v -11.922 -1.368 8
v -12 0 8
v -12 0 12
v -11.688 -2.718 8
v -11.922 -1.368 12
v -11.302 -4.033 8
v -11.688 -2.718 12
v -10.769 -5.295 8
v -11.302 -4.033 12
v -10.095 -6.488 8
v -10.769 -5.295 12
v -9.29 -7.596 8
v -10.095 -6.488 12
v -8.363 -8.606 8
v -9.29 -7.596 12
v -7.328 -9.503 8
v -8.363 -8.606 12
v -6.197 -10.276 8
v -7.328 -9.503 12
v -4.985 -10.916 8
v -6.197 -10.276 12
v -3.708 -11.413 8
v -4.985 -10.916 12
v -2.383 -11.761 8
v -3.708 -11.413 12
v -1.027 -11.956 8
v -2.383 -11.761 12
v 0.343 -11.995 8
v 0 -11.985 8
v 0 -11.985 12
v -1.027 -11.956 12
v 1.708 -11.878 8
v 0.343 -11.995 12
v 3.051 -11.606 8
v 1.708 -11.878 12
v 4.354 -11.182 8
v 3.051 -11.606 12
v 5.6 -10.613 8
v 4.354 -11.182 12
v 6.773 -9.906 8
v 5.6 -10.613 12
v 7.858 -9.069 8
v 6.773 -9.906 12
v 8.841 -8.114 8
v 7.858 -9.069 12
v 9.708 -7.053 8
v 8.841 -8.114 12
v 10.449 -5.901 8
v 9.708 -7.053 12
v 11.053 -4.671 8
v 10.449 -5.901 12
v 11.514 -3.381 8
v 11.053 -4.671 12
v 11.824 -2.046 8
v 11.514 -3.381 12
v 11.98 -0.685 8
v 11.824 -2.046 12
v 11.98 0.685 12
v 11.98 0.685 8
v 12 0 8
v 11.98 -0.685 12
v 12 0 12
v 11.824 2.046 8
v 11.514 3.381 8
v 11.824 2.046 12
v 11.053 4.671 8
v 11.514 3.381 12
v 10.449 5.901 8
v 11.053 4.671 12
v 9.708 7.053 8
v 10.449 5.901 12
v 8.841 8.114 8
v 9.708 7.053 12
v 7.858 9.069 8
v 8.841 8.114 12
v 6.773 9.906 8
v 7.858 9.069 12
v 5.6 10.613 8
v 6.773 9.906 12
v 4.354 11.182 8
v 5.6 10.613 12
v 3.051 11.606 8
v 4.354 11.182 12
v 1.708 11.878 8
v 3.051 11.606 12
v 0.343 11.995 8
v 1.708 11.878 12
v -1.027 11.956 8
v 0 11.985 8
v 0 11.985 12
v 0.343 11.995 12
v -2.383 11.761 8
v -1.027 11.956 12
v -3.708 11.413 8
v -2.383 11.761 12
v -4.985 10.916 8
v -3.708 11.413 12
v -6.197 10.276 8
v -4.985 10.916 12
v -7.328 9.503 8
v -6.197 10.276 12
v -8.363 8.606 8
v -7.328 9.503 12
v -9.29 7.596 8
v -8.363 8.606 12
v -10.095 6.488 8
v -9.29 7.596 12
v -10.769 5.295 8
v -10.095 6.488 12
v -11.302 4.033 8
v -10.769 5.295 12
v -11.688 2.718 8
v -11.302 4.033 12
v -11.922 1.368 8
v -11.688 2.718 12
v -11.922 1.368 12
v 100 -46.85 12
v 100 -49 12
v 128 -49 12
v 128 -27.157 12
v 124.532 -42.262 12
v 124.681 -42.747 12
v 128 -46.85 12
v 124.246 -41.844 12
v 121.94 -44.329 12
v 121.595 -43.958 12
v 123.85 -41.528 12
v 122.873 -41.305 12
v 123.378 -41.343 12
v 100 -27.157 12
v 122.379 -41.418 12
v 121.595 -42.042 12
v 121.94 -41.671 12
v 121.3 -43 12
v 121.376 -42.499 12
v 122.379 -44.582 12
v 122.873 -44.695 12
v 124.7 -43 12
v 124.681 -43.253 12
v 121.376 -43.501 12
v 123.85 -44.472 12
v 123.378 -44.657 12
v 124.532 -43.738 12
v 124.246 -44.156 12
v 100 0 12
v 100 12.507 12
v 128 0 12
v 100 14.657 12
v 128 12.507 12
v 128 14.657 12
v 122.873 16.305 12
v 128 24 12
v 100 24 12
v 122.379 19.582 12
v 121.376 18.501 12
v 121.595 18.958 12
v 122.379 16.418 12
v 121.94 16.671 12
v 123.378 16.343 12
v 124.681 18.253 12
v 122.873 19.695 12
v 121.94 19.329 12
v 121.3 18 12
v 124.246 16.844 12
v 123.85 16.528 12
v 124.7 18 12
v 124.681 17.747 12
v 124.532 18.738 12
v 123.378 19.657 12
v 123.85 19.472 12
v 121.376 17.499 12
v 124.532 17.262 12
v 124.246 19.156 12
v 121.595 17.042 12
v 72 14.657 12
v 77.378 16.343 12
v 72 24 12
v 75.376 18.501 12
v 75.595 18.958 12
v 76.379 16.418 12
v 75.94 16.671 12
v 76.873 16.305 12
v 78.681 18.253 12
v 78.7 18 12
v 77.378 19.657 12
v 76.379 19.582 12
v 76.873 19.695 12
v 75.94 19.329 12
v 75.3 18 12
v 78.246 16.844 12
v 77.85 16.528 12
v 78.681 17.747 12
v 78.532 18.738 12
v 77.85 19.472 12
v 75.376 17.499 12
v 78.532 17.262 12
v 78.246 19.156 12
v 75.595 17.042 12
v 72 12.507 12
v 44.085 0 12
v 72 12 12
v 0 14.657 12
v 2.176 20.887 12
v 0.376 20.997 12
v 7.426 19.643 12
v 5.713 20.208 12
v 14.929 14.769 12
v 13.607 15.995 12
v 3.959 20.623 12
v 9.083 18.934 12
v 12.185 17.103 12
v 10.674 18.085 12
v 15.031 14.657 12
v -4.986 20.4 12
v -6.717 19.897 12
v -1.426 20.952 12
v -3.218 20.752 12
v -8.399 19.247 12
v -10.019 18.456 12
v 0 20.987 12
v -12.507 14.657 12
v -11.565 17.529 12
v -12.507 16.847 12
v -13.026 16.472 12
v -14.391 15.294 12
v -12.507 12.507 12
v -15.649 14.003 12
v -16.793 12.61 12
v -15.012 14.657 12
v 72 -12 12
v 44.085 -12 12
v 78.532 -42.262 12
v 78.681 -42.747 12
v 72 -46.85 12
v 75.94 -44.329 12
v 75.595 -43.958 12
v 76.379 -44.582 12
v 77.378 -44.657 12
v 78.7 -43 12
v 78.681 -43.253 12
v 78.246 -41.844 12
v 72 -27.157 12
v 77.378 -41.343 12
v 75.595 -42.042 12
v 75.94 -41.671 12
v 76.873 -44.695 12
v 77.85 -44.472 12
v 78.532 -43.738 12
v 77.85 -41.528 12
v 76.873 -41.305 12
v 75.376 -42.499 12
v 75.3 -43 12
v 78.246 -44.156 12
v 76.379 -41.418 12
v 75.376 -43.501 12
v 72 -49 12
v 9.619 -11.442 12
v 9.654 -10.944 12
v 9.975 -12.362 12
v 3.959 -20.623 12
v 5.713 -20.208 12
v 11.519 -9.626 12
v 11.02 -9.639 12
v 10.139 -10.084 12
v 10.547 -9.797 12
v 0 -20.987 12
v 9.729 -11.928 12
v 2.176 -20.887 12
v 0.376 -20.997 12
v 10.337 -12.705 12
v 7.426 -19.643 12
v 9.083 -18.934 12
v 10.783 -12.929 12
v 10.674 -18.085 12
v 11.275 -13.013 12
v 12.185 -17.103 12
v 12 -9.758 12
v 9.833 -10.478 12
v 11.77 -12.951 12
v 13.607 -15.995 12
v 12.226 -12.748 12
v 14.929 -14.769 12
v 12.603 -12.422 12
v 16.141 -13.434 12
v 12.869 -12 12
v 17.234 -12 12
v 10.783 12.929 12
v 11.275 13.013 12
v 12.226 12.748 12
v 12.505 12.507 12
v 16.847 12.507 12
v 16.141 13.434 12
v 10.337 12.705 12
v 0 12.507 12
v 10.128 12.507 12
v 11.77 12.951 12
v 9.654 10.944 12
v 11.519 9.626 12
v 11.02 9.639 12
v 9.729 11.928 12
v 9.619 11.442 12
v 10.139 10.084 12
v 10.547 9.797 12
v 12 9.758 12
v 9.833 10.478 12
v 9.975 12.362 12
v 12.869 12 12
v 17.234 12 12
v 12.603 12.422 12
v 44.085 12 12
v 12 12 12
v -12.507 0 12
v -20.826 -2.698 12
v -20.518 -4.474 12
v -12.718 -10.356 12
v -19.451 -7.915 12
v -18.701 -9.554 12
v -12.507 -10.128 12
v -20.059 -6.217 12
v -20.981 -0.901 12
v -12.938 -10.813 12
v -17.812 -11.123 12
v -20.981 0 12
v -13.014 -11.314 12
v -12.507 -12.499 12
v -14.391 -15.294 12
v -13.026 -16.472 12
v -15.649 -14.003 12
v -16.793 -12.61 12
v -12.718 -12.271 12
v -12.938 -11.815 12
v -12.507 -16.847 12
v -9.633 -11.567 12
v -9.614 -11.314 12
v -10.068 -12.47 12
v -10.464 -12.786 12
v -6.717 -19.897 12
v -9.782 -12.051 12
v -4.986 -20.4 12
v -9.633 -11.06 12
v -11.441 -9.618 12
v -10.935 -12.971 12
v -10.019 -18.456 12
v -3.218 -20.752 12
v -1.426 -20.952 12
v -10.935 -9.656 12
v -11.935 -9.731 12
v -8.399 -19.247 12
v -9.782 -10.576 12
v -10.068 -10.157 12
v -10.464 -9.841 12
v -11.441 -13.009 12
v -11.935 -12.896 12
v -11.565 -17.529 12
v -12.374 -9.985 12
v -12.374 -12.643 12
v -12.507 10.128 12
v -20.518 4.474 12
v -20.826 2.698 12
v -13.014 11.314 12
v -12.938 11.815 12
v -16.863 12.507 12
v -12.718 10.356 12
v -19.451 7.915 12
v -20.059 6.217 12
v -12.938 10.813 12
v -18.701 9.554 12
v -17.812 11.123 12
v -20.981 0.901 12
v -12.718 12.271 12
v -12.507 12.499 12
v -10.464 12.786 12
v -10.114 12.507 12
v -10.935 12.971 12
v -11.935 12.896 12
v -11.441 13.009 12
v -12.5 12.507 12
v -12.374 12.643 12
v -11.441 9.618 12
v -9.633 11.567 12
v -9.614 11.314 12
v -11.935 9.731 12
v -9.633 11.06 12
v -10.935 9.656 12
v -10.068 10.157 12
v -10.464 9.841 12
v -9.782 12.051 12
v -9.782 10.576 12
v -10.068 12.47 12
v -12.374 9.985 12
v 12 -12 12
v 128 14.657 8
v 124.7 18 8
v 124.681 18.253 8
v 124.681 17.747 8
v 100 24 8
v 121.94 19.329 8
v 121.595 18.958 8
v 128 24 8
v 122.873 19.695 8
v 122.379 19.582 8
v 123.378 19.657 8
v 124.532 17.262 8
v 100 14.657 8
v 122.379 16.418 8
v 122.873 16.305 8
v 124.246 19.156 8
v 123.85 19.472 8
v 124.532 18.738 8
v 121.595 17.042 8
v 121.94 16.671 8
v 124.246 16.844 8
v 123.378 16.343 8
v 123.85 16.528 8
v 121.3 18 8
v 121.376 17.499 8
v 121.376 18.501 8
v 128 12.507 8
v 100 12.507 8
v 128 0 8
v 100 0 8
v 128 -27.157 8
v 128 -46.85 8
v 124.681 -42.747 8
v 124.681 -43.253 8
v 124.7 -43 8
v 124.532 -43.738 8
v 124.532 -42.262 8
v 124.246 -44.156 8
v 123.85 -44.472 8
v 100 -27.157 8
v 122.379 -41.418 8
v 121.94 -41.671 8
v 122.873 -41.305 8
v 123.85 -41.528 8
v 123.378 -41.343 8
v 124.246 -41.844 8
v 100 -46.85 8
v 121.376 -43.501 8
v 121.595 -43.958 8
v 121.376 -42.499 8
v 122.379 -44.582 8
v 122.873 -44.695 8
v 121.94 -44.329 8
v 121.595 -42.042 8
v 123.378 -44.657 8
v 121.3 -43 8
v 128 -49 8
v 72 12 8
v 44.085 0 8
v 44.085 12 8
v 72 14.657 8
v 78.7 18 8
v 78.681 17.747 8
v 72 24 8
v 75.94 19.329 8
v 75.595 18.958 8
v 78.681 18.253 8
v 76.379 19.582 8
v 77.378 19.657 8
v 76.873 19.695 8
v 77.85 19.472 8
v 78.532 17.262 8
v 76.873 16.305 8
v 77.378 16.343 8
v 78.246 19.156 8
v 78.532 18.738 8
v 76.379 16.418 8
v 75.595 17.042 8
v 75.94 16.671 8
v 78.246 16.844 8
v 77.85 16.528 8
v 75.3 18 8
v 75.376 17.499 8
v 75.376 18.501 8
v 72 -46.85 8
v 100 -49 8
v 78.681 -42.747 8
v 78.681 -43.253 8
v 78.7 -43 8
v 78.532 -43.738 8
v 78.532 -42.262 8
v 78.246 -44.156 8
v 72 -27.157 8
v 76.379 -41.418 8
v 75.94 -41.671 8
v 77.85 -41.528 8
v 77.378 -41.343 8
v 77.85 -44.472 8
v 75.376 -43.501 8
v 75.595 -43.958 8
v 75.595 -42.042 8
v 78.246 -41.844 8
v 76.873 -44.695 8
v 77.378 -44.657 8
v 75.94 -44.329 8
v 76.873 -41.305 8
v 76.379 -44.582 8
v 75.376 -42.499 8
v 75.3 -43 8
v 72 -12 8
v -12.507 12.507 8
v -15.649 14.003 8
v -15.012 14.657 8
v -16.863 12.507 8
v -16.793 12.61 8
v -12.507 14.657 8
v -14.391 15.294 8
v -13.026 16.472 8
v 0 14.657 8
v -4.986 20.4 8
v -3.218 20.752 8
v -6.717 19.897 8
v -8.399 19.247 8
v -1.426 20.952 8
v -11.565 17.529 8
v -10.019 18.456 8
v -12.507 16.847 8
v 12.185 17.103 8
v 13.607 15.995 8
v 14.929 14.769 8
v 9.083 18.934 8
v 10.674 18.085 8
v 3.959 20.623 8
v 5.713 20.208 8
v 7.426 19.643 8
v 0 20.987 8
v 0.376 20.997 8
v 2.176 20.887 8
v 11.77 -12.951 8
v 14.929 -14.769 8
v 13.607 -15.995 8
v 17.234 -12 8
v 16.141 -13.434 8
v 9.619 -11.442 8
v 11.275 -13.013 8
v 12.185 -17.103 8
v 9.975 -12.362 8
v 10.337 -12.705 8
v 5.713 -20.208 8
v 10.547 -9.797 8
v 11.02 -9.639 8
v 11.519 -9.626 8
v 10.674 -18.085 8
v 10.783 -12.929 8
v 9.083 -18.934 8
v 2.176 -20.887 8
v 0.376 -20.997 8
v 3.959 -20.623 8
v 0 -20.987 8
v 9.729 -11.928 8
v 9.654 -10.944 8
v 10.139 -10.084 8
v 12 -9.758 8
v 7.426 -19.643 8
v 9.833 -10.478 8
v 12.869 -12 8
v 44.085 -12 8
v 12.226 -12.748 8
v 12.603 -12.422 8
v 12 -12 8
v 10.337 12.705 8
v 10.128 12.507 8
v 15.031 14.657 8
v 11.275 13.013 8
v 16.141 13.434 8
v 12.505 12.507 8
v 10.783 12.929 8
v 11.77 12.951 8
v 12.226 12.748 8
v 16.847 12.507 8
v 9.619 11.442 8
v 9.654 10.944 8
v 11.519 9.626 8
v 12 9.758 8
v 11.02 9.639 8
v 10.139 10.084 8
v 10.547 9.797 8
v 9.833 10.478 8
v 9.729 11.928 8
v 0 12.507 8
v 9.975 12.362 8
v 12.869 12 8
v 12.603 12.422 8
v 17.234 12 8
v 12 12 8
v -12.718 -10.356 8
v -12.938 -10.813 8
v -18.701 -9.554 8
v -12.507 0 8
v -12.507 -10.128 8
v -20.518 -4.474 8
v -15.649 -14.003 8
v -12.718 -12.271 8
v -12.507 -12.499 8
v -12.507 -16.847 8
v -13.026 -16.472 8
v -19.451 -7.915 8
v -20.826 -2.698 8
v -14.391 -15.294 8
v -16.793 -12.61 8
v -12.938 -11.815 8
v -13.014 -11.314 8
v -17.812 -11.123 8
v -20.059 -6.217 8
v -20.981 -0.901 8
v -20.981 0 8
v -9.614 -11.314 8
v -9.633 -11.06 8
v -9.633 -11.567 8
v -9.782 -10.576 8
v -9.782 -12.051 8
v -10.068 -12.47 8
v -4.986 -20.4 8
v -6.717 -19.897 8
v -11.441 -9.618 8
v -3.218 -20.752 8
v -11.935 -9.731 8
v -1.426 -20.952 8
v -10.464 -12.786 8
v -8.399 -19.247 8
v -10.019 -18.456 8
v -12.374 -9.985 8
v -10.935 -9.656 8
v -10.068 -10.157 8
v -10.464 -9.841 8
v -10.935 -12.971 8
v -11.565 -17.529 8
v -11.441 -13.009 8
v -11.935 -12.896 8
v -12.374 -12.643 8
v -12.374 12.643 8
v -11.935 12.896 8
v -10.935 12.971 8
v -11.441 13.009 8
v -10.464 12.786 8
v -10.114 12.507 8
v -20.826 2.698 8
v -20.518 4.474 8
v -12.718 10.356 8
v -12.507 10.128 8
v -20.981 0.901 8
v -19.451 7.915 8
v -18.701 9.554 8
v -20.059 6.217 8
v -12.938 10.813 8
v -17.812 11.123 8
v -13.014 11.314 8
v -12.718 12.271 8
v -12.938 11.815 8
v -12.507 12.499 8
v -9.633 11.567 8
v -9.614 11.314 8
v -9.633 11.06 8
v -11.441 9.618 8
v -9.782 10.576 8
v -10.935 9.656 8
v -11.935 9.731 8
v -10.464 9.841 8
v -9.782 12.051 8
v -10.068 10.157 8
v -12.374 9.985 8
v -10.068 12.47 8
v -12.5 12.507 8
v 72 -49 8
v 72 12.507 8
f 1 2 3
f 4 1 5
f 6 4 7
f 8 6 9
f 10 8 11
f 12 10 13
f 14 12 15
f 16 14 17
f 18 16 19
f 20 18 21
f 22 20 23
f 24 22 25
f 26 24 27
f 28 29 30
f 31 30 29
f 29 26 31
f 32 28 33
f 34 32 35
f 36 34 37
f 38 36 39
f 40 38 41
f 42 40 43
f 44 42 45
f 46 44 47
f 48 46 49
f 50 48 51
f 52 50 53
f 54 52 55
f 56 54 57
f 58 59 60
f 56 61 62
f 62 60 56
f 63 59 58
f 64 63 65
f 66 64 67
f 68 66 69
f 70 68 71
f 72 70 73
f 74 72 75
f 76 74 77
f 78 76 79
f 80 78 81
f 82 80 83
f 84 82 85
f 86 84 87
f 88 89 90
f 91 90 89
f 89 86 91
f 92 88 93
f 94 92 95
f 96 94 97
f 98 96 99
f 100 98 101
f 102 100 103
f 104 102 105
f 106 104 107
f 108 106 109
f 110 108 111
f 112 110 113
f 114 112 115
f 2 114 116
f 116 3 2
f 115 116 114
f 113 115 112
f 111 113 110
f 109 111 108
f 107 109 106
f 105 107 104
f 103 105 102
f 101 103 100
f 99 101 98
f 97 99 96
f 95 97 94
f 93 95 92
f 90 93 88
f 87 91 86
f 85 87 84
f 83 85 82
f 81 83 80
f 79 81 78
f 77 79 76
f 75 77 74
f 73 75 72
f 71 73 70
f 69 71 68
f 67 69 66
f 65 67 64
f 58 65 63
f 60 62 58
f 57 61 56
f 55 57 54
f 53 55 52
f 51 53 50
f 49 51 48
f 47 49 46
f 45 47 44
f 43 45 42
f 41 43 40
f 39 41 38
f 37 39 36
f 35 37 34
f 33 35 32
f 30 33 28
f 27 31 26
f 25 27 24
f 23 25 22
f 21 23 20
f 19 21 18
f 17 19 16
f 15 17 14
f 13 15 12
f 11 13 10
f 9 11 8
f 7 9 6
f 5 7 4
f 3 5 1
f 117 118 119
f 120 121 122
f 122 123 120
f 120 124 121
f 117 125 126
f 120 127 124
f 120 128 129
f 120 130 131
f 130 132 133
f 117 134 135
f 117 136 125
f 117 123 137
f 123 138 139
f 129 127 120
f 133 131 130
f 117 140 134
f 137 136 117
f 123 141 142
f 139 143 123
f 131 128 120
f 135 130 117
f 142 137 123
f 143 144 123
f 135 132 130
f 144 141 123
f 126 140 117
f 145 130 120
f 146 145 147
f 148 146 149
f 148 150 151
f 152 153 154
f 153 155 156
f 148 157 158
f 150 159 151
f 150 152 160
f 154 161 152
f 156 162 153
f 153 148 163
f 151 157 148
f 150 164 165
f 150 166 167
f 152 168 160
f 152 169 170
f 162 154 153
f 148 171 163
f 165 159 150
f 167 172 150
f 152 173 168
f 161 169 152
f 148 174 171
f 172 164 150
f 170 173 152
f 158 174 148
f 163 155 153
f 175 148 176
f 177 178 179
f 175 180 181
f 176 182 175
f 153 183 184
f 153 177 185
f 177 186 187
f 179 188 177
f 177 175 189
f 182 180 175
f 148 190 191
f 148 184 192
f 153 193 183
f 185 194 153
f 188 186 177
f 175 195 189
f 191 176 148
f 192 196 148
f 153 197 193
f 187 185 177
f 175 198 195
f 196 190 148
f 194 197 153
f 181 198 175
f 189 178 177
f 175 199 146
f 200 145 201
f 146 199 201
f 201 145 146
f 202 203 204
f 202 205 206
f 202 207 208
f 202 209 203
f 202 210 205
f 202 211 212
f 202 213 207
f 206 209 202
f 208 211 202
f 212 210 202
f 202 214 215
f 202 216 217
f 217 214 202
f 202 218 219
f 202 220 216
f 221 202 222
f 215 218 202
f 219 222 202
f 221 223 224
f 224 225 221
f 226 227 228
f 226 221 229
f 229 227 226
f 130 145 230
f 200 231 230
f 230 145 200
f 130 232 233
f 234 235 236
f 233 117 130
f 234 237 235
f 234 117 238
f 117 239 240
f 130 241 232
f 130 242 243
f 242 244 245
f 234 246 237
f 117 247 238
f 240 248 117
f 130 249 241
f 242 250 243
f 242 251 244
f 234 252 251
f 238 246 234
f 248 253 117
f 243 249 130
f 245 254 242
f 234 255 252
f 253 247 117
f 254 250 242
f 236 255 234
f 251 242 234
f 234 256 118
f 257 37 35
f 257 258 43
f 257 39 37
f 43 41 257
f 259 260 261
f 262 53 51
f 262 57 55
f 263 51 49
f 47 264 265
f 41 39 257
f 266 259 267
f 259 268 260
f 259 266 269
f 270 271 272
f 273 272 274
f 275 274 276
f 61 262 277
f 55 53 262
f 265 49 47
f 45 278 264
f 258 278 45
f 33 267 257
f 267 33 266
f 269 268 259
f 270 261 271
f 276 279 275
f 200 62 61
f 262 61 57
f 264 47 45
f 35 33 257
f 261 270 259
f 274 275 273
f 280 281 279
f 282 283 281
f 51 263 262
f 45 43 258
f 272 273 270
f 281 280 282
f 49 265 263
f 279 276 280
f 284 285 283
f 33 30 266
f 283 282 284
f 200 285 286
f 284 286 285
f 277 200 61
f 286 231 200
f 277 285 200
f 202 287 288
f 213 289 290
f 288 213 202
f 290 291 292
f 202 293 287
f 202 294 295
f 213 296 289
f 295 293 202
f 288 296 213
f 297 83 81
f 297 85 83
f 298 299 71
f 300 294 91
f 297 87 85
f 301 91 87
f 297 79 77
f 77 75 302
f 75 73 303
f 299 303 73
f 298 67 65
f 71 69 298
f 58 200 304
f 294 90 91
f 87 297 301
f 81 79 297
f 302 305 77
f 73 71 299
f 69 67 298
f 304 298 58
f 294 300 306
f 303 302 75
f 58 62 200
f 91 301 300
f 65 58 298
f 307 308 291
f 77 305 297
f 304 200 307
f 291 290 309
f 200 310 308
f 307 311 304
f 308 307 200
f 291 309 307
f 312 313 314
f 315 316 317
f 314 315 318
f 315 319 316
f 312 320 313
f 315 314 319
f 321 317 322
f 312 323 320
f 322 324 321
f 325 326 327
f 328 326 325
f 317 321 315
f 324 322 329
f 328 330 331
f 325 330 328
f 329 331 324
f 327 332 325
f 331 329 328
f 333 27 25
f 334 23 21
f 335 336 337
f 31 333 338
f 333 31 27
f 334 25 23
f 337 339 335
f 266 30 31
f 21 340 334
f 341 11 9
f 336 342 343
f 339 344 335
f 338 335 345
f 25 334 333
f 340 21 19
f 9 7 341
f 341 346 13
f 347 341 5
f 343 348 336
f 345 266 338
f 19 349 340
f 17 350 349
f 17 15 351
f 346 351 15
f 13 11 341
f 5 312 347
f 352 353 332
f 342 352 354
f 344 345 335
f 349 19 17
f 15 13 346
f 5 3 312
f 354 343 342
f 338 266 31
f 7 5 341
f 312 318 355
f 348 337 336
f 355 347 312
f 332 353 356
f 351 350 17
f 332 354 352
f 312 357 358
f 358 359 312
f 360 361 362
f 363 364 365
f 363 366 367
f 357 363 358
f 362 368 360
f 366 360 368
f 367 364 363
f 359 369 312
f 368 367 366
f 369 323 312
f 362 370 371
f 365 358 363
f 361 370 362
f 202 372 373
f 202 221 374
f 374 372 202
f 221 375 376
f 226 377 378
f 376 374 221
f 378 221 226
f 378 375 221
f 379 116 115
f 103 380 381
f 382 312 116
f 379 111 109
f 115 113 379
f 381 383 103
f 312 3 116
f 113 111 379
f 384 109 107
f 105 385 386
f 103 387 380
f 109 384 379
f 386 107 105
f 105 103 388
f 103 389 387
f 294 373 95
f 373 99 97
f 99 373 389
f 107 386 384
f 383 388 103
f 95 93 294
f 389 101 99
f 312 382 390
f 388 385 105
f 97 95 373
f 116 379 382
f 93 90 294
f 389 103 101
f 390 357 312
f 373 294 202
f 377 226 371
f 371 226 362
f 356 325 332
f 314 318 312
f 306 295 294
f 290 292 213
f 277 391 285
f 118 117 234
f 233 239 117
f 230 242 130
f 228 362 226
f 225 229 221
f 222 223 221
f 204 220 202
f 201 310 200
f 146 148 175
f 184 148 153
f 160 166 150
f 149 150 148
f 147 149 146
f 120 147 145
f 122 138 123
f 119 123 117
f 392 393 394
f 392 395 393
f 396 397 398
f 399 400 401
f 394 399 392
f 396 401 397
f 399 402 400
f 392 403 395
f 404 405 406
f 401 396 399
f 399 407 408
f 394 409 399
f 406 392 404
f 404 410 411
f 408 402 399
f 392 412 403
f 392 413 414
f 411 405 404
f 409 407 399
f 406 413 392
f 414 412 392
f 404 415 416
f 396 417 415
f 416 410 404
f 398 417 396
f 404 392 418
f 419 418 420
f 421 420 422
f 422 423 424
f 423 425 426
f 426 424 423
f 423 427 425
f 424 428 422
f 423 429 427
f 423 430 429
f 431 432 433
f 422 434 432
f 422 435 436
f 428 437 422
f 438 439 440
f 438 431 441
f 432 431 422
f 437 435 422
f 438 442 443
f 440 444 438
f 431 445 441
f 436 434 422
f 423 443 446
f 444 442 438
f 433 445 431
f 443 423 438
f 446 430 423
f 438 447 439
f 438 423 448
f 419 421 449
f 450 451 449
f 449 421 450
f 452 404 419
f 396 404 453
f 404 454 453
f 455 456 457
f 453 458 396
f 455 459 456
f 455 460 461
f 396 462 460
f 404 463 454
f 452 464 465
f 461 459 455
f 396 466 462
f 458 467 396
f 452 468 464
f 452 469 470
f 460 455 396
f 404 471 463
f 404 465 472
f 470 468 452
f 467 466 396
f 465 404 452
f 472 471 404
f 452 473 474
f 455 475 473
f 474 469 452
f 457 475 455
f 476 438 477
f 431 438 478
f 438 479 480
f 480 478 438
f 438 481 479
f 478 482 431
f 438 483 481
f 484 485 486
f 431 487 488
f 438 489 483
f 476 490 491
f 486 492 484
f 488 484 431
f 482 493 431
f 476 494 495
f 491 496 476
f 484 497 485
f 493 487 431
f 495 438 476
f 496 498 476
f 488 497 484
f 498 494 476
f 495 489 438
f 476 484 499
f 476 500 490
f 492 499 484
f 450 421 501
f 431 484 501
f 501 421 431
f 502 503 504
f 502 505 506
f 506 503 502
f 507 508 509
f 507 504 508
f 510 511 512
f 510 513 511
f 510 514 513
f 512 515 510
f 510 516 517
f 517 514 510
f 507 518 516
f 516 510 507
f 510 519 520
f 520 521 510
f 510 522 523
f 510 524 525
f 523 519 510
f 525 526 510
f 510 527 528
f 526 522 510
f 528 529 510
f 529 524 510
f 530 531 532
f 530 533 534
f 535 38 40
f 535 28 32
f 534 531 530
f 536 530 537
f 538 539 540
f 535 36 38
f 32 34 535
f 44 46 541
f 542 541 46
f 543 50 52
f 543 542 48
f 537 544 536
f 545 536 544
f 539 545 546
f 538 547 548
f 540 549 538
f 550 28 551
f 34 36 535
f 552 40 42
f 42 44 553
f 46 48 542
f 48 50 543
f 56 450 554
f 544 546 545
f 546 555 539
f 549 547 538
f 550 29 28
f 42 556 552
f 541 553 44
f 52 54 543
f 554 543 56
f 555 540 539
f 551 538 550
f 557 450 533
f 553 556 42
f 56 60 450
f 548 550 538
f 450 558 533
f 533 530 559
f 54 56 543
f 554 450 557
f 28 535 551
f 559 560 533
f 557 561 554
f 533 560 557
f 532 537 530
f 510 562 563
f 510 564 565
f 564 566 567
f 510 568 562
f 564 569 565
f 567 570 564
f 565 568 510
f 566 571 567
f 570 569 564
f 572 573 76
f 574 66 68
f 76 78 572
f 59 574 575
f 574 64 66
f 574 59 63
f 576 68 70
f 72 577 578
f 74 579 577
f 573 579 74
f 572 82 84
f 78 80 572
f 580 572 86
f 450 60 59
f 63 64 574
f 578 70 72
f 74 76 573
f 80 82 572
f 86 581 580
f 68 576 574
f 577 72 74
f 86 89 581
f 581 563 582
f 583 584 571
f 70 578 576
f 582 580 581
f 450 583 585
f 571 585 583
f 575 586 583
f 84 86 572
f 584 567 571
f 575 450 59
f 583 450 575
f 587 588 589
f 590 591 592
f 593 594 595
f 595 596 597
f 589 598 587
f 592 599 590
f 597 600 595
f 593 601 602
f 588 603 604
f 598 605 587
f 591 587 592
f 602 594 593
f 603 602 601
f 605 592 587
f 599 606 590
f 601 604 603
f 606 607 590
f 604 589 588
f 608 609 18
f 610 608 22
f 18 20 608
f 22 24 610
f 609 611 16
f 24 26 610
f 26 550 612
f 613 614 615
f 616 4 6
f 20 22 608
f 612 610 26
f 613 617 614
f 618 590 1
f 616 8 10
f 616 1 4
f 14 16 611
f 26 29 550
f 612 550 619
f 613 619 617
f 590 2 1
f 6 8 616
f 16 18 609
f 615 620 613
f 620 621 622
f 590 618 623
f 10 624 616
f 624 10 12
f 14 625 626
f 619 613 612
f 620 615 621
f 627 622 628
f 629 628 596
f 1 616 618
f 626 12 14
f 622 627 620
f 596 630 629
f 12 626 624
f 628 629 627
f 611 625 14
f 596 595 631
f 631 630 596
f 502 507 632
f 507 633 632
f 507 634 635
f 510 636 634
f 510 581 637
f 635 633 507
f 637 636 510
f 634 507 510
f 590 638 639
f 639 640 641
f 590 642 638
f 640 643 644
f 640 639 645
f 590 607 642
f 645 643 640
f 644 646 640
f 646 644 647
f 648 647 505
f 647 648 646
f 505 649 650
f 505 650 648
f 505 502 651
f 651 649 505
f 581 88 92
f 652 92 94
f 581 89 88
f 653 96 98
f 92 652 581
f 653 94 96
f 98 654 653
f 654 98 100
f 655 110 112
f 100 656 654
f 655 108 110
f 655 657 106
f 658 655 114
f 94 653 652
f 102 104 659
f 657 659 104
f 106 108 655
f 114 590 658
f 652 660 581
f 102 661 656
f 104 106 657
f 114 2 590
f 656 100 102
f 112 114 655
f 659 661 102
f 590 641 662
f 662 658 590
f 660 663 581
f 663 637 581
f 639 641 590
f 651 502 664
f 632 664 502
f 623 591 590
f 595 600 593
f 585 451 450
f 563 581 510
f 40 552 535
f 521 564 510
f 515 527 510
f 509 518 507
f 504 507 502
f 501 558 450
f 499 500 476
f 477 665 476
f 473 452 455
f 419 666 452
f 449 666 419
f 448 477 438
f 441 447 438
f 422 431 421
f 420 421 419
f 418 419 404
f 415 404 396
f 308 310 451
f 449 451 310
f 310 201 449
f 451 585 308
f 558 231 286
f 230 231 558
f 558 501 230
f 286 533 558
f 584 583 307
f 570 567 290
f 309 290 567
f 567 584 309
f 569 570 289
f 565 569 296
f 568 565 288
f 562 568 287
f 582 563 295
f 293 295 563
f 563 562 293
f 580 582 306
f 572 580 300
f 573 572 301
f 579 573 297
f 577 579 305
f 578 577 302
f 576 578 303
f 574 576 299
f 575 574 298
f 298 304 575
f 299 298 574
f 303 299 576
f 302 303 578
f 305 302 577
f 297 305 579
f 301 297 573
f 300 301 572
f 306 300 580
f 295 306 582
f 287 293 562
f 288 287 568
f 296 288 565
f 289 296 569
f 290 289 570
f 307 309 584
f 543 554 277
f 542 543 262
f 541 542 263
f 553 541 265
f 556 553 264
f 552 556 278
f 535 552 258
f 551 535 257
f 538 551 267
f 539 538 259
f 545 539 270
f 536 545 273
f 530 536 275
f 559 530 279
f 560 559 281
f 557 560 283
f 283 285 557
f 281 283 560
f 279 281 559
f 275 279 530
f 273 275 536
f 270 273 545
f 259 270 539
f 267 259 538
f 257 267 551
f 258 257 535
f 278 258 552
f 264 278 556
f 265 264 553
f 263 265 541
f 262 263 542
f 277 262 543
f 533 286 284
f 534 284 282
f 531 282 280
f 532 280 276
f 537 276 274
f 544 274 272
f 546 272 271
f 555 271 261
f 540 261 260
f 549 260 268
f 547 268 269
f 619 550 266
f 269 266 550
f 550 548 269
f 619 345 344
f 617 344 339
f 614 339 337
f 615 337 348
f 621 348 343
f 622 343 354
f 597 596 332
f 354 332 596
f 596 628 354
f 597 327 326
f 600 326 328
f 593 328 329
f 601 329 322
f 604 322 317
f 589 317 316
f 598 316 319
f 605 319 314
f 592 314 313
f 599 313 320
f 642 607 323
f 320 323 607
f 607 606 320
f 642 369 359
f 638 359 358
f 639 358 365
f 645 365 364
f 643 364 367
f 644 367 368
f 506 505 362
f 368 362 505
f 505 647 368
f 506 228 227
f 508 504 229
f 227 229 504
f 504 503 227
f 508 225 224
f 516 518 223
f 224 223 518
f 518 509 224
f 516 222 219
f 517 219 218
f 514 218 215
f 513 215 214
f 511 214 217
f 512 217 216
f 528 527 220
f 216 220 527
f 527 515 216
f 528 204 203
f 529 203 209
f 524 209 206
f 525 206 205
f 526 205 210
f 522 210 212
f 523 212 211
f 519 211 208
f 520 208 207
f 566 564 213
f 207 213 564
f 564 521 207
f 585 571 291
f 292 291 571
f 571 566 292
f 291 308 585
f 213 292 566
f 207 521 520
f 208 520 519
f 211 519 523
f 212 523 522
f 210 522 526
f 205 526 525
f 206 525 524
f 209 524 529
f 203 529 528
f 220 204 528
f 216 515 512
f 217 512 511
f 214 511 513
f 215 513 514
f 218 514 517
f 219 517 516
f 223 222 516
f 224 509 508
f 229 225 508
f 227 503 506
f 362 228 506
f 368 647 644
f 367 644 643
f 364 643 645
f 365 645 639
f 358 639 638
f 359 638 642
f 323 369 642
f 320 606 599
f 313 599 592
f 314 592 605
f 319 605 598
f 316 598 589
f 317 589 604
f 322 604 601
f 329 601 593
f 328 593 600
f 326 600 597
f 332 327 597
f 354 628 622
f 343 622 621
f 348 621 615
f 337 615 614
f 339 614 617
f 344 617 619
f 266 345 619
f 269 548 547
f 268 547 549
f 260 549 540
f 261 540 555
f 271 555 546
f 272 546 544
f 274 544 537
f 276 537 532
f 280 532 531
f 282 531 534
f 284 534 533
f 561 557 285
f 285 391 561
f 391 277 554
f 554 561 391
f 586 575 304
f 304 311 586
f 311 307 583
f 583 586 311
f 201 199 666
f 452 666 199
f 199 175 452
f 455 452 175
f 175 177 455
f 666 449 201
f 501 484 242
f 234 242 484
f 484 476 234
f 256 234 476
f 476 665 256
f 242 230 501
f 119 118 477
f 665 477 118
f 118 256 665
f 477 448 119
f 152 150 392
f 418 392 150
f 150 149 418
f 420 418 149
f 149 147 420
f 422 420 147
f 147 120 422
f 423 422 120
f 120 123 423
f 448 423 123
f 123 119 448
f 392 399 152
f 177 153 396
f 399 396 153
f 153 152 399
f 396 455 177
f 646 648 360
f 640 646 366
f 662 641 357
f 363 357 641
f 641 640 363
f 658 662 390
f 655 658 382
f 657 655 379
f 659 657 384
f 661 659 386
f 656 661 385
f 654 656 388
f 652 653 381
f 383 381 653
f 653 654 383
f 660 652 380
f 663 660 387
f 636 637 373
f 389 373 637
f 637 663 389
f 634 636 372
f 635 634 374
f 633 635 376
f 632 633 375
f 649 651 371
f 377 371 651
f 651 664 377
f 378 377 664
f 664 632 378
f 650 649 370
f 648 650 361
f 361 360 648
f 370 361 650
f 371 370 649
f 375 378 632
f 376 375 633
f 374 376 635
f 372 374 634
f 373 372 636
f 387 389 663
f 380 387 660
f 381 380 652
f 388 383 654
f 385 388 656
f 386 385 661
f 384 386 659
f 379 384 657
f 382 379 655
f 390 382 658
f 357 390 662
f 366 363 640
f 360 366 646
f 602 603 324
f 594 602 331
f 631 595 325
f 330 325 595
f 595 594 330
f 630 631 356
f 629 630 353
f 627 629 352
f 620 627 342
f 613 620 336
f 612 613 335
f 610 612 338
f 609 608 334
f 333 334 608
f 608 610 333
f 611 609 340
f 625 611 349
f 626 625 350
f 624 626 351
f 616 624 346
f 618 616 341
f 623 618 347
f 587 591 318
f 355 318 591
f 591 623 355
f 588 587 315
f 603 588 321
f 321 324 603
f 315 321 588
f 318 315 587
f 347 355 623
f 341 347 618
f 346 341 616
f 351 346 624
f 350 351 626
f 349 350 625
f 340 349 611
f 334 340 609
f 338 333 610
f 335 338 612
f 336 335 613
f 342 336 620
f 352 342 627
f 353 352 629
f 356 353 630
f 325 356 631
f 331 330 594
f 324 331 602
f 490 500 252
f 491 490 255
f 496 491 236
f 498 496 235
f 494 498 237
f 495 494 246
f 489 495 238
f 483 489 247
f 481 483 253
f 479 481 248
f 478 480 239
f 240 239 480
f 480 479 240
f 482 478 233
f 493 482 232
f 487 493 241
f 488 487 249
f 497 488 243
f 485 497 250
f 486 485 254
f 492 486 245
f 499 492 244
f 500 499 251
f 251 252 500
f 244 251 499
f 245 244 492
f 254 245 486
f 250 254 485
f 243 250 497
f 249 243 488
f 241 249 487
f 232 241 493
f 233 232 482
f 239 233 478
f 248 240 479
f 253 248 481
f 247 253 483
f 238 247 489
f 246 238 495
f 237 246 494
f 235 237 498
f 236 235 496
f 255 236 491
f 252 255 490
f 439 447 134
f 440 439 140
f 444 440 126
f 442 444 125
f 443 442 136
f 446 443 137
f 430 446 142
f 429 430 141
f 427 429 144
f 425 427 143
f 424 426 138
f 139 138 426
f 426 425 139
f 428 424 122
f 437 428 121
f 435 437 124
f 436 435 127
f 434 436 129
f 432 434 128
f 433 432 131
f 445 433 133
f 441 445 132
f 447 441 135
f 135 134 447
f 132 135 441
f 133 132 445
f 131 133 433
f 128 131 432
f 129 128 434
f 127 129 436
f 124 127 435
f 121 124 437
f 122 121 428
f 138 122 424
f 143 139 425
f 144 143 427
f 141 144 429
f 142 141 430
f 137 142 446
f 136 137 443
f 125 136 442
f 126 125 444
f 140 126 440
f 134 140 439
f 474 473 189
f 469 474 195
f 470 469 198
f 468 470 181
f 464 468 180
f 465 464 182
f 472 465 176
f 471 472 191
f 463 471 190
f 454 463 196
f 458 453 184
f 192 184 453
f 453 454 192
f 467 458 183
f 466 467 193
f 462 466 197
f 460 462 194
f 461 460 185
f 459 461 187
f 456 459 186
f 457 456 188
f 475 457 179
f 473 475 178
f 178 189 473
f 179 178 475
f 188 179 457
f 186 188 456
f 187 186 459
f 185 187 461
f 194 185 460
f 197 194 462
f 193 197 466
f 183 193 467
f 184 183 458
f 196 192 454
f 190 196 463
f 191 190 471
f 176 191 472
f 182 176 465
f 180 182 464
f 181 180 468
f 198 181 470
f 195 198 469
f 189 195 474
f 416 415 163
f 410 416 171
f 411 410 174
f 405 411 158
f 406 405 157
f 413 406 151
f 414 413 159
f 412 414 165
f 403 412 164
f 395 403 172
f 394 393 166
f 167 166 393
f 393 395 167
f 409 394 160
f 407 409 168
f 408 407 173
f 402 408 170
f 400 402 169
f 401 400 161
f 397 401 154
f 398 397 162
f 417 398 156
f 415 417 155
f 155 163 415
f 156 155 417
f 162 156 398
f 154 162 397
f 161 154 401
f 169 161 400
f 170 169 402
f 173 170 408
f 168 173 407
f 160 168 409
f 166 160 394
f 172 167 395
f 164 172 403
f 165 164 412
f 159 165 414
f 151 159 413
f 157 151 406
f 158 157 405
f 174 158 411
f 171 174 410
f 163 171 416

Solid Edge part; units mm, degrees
sketch "Sketch1" plane through (0, 0, 8) normal (0, 0, 1) x (1, 0, 0)
  circle A0 centre (0, 0) radius 21
  circle A1 centre (0, 0) radius 12
  circle A2 centre (11.3137, 11.3137) radius 1.7
  circle A3 centre (-11.3137, 11.3137) radius 1.7
  circle A4 centre (-11.3137, -11.3137) radius 1.7
  circle A5 centre (11.3137, -11.3137) radius 1.7
extrude "ExtrudedProtrusion_1" add sketch "Sketch1" along normal blind 4
sketch "Sketch2" plane through (0, 0, 8) normal (0, 0, 1) x (1, 0, 0)
  line L0 (12, -12) -> (88, -12)
  line L1 (88, -12) -> (88, 12)
  line L2 (88, 12) -> (12, 12)
  line L3 (12, 12) -> (12, -12)
extrude "ExtrudedProtrusion_2" add sketch "Sketch2" along normal blind 4
sketch "Sketch3" plane through (0, 0, 8) normal (0, 0, 1) x (1, 0, 0)
  line L0 (72, -49) -> (128, -49)
  line L1 (128, -49) -> (128, 24)
  line L2 (128, 24) -> (72, 24)
  line L3 (72, 24) -> (72, -49)
  circle A0 centre (77, -43) radius 1.7
  circle A1 centre (123, -43) radius 1.7
  circle A2 centre (77, 18) radius 1.7
  circle A3 centre (123, 18) radius 1.7
extrude "ExtrudedProtrusion_3" add sketch "Sketch3" along normal blind 4
